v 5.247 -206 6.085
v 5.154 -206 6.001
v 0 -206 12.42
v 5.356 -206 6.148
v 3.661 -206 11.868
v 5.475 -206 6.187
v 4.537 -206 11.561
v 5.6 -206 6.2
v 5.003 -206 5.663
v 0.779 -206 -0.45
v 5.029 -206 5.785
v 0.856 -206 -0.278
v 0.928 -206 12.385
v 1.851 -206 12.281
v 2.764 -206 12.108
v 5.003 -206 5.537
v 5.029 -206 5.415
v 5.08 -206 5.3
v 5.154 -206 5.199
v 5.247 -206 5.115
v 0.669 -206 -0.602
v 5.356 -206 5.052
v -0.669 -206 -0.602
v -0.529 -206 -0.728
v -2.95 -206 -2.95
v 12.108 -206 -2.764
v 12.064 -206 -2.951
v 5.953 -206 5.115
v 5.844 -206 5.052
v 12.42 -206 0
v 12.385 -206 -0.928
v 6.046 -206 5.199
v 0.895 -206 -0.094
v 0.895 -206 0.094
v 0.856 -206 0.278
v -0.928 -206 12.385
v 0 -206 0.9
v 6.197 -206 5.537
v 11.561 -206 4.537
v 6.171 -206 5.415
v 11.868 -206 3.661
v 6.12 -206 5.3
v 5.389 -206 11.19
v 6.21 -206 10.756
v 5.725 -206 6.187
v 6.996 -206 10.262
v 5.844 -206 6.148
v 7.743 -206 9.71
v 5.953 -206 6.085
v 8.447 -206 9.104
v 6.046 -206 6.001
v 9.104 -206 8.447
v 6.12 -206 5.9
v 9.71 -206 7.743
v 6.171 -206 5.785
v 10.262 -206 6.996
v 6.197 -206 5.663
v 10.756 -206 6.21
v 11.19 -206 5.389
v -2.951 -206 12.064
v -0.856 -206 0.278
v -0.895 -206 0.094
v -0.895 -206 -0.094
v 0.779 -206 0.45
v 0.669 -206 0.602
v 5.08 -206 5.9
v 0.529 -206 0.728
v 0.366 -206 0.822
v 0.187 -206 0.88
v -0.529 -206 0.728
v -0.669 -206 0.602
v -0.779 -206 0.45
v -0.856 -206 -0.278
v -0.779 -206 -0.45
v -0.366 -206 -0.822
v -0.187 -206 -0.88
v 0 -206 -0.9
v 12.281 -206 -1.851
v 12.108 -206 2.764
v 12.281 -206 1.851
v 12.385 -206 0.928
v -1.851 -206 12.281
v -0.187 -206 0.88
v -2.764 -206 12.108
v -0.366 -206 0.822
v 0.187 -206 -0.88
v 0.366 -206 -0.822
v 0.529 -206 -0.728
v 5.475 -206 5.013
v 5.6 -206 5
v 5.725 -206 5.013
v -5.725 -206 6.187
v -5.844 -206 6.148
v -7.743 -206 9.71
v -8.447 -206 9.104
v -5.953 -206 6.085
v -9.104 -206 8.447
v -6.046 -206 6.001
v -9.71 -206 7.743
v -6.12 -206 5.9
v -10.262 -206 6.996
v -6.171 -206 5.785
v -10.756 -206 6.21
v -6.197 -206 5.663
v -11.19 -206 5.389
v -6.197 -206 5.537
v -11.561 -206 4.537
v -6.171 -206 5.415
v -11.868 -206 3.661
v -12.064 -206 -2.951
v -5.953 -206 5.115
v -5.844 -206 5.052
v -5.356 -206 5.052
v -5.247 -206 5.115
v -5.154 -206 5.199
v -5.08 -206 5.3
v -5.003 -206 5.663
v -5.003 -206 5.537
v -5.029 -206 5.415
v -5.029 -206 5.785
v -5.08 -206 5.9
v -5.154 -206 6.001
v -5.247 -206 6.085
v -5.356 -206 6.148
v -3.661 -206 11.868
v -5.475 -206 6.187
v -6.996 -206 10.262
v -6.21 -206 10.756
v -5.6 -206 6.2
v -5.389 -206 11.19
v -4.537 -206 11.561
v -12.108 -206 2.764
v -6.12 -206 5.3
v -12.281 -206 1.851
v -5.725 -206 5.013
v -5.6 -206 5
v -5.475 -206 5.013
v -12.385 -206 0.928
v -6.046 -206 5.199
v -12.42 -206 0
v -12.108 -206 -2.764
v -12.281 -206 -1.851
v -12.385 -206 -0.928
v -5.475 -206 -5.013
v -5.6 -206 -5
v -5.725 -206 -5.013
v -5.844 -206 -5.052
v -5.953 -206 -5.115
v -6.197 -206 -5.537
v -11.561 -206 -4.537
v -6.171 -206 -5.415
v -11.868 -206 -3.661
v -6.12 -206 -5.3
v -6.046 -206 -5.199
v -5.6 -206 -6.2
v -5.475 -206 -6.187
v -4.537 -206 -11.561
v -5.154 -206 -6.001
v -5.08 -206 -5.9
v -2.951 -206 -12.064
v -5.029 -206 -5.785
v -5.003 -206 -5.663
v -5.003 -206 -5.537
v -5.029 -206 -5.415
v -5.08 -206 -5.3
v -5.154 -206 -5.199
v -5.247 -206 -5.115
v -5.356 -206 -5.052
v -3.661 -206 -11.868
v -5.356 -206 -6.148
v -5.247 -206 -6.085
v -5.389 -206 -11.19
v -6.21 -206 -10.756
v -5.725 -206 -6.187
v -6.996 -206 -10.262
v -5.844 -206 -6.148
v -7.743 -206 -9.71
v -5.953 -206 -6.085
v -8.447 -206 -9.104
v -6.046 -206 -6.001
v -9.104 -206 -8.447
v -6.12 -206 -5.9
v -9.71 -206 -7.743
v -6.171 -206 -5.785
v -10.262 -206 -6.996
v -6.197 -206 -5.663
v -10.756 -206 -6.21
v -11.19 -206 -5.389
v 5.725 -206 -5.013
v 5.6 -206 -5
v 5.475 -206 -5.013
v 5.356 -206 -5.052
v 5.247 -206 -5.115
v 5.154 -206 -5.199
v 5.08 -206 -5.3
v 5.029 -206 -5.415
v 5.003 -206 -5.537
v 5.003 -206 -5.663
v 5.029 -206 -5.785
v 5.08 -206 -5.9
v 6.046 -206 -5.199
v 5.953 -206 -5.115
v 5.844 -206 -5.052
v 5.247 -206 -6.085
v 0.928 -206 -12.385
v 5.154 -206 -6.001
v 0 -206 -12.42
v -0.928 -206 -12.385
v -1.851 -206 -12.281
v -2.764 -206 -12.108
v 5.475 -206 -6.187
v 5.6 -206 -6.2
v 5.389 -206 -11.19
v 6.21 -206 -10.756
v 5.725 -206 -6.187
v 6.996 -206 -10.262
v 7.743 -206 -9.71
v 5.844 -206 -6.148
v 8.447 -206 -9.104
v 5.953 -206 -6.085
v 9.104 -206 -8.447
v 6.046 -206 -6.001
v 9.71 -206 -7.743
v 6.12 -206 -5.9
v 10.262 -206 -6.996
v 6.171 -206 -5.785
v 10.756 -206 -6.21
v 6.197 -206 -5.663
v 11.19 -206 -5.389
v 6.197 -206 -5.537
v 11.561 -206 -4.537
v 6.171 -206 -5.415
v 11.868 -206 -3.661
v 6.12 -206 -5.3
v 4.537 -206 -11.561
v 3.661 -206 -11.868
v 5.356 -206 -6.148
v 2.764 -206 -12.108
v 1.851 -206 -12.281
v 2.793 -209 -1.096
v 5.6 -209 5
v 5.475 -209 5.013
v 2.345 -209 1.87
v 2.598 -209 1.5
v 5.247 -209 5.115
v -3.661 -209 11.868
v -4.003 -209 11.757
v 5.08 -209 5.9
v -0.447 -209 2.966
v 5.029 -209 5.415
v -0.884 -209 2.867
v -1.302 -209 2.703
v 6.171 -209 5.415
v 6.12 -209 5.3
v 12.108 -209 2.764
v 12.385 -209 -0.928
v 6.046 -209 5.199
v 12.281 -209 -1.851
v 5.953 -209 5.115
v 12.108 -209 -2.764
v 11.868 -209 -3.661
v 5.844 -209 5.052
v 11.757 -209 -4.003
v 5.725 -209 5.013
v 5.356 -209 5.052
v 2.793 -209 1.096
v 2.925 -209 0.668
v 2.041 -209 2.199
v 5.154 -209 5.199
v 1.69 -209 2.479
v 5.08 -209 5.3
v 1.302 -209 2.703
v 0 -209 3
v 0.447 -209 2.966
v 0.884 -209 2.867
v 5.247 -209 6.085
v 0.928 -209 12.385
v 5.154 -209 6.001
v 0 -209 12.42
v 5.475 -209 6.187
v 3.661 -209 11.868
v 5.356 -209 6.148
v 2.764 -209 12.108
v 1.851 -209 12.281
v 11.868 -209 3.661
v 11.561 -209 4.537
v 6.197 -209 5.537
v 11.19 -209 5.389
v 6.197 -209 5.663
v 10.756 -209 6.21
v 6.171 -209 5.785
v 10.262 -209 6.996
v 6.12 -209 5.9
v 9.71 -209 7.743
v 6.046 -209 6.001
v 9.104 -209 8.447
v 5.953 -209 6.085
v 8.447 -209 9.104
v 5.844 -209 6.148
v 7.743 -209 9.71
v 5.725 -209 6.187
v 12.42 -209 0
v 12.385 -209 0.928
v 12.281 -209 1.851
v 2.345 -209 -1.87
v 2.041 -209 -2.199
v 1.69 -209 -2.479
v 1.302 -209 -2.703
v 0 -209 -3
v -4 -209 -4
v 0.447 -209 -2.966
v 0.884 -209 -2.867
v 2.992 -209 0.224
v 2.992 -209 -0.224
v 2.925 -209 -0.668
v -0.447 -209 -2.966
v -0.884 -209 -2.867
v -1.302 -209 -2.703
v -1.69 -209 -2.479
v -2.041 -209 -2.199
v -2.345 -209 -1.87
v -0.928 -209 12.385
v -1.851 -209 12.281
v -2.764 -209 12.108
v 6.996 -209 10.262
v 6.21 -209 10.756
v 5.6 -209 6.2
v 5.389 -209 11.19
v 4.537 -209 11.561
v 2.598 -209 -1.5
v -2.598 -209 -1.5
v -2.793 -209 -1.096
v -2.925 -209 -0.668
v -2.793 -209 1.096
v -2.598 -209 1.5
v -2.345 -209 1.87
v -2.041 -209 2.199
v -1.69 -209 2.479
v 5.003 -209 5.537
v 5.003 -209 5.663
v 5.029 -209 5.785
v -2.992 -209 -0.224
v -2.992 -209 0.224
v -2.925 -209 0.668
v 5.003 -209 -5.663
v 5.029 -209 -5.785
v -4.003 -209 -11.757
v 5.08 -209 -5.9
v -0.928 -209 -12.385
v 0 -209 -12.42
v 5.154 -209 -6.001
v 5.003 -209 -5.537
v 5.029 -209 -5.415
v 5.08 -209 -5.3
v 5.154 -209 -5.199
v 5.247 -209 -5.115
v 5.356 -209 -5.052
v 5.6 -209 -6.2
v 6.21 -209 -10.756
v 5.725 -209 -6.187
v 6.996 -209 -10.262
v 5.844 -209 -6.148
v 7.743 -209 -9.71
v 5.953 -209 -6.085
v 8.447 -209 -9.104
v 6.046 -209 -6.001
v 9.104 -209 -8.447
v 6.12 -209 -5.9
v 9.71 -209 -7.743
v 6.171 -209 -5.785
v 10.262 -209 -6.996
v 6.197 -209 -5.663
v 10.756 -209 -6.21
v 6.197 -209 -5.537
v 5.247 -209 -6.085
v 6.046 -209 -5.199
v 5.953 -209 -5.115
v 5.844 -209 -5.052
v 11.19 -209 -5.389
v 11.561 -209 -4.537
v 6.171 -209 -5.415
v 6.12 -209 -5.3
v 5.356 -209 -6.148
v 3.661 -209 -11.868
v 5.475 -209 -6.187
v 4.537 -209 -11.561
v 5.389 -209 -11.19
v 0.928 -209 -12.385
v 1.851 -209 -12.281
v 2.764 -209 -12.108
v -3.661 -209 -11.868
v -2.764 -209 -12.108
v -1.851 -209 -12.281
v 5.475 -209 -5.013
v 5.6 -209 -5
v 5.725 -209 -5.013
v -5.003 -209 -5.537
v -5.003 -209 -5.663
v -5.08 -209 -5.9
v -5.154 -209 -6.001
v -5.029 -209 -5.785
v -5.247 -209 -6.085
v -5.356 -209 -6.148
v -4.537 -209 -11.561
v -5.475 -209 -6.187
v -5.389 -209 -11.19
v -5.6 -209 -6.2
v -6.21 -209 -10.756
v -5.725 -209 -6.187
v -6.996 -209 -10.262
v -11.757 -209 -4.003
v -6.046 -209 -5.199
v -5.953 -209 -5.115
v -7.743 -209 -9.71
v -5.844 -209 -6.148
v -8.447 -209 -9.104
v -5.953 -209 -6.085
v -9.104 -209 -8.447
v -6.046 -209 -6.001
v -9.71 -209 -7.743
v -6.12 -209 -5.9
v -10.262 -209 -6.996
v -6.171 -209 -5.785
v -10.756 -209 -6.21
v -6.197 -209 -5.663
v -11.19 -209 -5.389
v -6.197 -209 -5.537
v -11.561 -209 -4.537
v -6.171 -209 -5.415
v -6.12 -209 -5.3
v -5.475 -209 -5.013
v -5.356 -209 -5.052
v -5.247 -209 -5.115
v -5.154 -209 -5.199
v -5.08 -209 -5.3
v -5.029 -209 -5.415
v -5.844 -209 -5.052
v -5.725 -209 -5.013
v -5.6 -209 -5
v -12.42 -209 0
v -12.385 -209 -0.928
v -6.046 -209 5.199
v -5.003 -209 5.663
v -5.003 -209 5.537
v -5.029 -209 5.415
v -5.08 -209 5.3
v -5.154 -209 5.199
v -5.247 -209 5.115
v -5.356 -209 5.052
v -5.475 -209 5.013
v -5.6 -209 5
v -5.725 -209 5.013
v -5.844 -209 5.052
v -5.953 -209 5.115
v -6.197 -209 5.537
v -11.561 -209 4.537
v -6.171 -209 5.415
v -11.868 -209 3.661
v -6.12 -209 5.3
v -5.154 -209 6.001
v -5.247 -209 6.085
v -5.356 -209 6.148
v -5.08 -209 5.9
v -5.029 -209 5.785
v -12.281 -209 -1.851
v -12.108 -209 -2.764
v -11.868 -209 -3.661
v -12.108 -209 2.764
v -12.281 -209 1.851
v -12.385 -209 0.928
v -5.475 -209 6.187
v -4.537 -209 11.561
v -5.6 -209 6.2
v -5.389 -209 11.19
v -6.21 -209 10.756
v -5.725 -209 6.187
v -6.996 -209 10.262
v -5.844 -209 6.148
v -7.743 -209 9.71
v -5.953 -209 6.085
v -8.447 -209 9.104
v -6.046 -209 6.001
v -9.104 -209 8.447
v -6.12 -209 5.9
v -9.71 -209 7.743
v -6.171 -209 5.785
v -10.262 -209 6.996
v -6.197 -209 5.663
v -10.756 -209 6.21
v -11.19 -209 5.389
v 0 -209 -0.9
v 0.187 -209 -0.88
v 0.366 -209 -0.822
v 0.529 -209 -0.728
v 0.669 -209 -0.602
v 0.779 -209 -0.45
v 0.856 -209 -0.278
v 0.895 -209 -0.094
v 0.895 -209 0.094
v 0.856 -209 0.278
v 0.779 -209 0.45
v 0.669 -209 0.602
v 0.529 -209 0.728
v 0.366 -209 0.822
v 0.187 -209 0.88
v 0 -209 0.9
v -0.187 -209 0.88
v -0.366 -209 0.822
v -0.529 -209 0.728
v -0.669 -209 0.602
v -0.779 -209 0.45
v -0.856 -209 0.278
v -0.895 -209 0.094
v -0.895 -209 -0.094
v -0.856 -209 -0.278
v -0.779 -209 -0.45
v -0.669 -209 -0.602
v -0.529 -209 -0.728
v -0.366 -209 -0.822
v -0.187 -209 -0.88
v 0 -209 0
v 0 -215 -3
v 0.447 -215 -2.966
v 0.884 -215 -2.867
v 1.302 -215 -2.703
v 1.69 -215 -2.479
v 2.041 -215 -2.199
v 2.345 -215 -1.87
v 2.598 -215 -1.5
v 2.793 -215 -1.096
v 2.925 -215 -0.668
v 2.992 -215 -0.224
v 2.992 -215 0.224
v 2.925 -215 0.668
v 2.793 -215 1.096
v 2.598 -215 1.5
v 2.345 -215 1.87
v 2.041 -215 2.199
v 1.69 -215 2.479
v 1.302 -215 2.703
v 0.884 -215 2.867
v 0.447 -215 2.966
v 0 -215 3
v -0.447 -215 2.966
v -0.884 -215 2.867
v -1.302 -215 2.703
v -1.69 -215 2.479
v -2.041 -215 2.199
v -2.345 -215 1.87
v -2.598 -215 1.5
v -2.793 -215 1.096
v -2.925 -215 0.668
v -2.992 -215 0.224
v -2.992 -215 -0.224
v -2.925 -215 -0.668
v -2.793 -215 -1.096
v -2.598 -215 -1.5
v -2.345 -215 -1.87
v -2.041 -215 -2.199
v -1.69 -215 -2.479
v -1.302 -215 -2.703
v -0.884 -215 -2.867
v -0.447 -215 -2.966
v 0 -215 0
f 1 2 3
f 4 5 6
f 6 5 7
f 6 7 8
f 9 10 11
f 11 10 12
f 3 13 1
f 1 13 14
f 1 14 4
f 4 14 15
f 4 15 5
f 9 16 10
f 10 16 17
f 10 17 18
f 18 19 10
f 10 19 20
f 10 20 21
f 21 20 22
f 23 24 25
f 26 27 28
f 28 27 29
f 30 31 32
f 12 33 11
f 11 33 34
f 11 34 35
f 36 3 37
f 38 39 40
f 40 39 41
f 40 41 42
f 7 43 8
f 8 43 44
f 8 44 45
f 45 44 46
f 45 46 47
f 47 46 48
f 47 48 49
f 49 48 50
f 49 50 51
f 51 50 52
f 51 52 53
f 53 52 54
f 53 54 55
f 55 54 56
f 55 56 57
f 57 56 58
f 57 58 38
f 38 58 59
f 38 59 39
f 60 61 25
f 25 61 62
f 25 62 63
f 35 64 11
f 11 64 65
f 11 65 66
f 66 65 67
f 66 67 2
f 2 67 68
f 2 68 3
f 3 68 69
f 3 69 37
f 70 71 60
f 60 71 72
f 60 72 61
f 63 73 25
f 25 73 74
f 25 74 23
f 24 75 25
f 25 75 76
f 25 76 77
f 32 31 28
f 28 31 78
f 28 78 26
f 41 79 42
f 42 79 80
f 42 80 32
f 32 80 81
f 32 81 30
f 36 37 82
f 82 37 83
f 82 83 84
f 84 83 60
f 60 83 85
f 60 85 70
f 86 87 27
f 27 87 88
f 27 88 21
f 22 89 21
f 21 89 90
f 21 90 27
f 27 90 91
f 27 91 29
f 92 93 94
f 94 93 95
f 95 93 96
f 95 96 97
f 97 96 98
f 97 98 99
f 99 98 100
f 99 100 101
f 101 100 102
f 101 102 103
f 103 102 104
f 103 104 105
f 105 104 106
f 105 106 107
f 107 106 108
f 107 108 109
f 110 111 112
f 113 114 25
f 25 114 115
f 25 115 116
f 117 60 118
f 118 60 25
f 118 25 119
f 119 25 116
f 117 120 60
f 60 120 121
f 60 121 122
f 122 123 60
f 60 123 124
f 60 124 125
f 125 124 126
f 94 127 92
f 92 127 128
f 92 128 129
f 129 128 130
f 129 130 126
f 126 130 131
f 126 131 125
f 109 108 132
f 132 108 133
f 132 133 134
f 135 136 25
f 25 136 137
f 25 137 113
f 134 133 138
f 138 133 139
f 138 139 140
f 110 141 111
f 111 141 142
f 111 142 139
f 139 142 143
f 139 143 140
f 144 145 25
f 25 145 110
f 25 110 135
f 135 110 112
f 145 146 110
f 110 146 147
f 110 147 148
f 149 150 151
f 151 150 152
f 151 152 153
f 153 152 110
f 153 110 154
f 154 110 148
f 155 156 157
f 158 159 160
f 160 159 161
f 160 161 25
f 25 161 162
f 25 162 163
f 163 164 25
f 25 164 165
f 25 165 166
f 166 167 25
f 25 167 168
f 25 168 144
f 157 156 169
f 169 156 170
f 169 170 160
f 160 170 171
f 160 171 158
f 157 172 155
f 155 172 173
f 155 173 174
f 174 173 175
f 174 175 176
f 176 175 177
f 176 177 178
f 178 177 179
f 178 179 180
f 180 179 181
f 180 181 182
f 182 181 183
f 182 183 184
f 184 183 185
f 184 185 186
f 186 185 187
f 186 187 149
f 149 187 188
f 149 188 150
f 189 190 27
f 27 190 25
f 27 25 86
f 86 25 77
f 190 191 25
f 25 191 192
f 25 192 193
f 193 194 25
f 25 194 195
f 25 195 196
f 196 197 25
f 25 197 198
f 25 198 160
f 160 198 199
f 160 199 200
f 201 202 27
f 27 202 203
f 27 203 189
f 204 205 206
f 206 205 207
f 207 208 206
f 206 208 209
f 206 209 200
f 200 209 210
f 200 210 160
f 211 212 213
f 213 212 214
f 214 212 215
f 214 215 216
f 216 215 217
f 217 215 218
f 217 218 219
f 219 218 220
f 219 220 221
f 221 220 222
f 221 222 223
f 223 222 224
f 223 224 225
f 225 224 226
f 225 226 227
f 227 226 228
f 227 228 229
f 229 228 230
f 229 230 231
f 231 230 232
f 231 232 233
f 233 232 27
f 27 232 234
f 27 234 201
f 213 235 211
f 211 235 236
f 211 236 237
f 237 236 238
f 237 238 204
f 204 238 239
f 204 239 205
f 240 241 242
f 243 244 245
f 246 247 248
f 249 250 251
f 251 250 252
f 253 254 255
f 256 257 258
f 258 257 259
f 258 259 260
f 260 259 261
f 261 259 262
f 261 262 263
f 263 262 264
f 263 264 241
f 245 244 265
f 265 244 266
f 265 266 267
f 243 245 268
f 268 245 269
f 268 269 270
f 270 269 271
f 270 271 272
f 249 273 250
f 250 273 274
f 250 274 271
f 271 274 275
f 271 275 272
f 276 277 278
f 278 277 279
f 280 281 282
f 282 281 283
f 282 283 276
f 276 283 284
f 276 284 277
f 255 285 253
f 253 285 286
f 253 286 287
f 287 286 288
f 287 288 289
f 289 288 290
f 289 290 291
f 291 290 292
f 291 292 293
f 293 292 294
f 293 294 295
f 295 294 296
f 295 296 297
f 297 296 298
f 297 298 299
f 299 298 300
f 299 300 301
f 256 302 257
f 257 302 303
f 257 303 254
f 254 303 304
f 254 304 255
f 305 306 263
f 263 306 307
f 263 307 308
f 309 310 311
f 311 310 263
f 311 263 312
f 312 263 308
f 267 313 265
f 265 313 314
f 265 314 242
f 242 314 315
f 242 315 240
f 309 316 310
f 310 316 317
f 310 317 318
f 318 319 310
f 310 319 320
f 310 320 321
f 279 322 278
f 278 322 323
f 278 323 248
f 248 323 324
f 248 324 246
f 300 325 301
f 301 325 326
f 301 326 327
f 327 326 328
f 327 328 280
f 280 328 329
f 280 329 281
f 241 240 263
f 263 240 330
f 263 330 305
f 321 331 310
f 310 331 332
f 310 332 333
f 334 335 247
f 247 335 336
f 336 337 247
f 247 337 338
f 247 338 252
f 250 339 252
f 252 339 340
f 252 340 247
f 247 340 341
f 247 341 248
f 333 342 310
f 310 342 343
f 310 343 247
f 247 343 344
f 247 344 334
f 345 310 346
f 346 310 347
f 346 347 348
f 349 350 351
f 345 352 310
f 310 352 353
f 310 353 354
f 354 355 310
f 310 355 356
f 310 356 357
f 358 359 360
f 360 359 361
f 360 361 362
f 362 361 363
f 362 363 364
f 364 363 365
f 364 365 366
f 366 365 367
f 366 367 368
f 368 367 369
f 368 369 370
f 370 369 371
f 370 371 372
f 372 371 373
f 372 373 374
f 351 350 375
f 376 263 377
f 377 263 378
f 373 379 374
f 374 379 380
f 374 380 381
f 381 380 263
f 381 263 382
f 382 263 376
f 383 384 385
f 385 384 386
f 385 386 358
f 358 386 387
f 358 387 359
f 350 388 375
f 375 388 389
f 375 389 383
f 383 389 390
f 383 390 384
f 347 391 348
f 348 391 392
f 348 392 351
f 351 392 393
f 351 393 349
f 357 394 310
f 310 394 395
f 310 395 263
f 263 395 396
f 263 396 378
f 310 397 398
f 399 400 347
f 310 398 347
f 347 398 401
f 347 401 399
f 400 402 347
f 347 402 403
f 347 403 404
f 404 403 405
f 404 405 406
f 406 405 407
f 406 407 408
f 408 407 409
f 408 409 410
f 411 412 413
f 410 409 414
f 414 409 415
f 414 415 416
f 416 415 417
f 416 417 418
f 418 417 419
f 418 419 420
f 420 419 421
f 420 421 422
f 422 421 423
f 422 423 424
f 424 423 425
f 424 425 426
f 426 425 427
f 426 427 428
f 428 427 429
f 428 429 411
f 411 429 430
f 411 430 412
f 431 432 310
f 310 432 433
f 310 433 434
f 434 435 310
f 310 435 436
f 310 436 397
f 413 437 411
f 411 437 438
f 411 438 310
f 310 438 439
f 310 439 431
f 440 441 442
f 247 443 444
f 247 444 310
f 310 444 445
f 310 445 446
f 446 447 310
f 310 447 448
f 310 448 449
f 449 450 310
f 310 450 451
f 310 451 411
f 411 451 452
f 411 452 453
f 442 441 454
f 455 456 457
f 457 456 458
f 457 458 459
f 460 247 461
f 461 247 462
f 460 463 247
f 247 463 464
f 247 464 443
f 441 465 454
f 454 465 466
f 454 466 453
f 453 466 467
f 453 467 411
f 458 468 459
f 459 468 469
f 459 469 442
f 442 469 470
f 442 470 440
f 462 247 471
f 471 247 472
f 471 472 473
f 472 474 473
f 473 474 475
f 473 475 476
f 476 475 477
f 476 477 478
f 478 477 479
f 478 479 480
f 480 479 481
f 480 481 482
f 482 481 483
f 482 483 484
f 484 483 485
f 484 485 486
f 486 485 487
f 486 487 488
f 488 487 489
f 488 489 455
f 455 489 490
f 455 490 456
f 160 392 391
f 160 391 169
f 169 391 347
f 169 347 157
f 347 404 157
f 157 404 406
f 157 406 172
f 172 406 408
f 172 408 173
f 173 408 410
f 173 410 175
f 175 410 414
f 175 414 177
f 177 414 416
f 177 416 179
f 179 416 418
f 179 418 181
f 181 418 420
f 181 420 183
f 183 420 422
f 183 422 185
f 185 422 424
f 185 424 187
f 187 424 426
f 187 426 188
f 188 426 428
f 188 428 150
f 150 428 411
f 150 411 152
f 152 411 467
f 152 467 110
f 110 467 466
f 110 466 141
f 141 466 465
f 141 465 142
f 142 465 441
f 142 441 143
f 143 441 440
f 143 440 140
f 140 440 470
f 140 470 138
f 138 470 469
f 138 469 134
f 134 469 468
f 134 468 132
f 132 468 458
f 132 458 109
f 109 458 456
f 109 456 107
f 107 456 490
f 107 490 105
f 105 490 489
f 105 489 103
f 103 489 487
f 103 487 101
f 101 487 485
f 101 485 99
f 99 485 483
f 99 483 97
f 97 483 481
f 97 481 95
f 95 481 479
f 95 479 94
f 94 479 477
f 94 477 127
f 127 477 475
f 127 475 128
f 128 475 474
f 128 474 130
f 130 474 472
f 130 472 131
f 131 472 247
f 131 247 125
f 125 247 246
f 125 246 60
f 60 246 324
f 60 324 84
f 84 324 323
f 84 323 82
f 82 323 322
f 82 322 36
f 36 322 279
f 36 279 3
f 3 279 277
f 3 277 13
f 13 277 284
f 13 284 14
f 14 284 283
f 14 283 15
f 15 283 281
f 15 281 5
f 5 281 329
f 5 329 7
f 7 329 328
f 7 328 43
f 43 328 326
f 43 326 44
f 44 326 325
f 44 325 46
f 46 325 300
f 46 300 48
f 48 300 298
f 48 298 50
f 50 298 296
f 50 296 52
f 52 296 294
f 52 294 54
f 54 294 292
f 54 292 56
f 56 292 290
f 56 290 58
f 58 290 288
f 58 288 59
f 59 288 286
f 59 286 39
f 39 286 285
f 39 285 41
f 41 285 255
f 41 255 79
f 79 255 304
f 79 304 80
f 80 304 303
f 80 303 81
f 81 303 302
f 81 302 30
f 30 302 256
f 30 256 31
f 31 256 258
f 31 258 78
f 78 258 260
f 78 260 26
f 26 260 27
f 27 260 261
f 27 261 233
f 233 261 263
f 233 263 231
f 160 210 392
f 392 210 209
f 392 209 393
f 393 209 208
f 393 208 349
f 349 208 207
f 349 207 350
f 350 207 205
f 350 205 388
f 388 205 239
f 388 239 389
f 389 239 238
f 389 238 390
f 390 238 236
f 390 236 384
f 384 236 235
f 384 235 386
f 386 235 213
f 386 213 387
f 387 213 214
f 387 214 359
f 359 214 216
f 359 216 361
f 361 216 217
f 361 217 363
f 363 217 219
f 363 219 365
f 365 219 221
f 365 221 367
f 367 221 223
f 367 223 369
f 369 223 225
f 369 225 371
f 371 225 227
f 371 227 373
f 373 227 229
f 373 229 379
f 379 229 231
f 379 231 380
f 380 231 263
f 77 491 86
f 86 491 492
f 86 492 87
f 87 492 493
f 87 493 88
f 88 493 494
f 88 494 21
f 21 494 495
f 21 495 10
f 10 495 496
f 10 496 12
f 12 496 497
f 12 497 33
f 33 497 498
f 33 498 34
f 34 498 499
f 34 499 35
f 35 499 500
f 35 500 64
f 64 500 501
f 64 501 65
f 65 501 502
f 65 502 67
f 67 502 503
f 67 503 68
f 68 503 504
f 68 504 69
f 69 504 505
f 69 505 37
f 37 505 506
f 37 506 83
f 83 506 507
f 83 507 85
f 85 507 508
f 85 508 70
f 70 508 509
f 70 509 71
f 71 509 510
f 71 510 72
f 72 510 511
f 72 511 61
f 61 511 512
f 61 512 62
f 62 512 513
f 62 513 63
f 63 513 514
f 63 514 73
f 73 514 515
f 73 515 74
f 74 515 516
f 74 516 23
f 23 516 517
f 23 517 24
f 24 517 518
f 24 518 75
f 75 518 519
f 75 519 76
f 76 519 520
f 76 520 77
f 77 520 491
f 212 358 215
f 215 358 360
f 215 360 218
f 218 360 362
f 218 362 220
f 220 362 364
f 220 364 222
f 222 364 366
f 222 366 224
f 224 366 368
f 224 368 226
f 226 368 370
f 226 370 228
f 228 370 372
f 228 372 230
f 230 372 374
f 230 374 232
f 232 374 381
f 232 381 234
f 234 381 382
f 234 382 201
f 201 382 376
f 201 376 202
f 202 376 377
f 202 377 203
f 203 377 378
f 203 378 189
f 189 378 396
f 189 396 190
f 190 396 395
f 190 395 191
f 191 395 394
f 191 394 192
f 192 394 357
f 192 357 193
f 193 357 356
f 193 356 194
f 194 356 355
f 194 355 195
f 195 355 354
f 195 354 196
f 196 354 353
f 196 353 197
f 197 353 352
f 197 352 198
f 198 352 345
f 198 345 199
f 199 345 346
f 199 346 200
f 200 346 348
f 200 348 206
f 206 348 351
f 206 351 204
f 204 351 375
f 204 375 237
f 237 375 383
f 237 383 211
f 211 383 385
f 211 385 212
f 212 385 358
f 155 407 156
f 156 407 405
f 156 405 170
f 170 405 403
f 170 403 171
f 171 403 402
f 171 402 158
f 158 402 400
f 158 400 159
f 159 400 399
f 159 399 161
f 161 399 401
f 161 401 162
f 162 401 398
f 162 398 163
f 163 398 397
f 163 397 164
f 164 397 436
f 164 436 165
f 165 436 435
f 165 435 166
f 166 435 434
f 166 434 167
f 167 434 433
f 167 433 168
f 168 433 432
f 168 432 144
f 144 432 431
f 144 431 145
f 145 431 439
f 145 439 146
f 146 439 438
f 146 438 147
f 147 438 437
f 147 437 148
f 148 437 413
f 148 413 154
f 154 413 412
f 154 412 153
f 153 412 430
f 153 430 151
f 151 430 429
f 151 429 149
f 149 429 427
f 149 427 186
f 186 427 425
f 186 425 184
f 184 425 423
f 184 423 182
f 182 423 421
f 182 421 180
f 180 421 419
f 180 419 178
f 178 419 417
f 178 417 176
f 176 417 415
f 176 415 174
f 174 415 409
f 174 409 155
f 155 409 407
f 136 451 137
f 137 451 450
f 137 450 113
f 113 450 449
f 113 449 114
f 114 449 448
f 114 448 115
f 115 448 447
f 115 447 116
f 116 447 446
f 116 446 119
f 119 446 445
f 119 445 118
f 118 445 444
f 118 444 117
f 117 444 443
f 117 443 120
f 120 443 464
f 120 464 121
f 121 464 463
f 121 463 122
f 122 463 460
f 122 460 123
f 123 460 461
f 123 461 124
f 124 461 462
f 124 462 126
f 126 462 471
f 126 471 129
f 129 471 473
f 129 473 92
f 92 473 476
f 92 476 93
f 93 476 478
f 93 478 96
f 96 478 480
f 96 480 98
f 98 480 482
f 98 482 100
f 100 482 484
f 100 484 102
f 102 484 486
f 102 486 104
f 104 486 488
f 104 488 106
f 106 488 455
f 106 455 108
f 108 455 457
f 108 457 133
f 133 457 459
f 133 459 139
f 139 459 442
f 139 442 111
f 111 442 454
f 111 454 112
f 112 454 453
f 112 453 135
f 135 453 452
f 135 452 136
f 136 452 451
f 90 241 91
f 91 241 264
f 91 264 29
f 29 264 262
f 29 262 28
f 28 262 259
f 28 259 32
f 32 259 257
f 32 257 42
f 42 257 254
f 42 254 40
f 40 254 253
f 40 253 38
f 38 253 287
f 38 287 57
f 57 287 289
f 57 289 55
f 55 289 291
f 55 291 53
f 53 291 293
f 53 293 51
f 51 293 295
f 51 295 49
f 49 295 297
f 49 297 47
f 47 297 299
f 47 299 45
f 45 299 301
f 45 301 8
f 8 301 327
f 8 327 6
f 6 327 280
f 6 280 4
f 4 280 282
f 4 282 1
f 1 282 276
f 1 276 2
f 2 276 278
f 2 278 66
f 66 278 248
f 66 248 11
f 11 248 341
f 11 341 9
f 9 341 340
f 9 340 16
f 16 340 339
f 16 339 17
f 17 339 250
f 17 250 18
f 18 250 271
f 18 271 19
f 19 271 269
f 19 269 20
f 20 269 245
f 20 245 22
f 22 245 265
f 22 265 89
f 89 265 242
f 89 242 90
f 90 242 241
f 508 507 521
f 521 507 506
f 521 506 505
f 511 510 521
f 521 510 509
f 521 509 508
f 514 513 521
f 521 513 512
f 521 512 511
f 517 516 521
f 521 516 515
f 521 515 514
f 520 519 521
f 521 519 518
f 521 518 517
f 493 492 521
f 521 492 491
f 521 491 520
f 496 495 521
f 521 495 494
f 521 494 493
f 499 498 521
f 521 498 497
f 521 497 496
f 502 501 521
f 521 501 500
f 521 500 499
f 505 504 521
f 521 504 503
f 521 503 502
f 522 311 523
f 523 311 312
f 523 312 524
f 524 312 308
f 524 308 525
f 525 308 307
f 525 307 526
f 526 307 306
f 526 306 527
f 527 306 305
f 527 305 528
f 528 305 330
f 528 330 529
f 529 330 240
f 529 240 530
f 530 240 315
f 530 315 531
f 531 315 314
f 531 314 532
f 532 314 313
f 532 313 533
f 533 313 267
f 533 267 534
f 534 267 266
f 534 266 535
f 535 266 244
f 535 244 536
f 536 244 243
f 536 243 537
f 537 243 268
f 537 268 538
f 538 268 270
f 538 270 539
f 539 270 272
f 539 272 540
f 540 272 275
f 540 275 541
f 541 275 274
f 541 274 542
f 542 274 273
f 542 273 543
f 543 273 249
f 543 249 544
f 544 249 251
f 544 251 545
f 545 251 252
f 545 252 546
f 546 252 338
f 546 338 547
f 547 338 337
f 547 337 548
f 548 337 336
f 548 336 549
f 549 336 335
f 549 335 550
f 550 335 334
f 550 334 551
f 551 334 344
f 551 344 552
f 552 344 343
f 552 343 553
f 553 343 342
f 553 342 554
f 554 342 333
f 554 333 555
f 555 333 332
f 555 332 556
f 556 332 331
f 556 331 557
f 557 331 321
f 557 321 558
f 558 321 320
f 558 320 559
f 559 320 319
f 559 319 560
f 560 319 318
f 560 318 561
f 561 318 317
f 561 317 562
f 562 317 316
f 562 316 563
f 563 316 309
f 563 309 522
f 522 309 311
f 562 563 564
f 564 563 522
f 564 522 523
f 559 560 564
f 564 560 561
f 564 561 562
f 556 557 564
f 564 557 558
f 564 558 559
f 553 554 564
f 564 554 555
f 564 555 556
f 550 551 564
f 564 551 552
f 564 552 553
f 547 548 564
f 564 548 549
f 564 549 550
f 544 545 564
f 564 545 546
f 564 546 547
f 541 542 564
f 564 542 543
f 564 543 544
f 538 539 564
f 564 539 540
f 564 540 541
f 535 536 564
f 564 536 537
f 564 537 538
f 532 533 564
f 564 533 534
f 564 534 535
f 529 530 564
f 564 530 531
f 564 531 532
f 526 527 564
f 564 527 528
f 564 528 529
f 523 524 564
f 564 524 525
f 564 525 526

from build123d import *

# Parameters (mm, degrees)
SKETCH1_R               = 12.419595949
SKETCH1_R_2             = 0.9
SKETCH1_R_3             = 0.6
DISCO_APONEUROSIS_DEPTH = 3


with BuildPart() as part:
    # Sketch1 → Disco_aponeurosis (new body)
    with BuildSketch(Plane(origin=(0, -209, 0), x_dir=(1, 0, 0), z_dir=(0, 1, 0))):
        with Locations(Location((0, 0, 0), (0, 0, 270))):
            Circle(SKETCH1_R)
        with Locations(Location((0, 0, 0), (0, 0, 270))):
            Circle(SKETCH1_R_2, mode=Mode.SUBTRACT)
        with Locations(Location((5.6, 5.6, 0), (0, 0, 270))):
            Circle(SKETCH1_R_3, mode=Mode.SUBTRACT)
        with Locations(Location((-5.6, 5.6, 0), (0, 0, 270))):
            Circle(SKETCH1_R_3, mode=Mode.SUBTRACT)
        with Locations(Location((-5.6, -5.6, 0), (0, 0, 270))):
            Circle(SKETCH1_R_3, mode=Mode.SUBTRACT)
        with Locations(Location((5.6, -5.6, 0), (0, 0, 270))):
            Circle(SKETCH1_R_3, mode=Mode.SUBTRACT)
    extrude(amount=DISCO_APONEUROSIS_DEPTH)

    # Sketch2 → Boca_tendon (revolve)
    with BuildSketch(Plane.XY, mode=Mode.PRIVATE) as boca_tendon_sk:
        Polygon((0, -209), (3, -209), (3, -215), (1.2, -215), (0, -215), align=None)
    revolve(boca_tendon_sk.sketch.rotate(Axis((0, -219, 0), (0, 1, 0)), 90), axis=Axis((0, -219, 0), (0, 1, 0)))


solid = part.part
